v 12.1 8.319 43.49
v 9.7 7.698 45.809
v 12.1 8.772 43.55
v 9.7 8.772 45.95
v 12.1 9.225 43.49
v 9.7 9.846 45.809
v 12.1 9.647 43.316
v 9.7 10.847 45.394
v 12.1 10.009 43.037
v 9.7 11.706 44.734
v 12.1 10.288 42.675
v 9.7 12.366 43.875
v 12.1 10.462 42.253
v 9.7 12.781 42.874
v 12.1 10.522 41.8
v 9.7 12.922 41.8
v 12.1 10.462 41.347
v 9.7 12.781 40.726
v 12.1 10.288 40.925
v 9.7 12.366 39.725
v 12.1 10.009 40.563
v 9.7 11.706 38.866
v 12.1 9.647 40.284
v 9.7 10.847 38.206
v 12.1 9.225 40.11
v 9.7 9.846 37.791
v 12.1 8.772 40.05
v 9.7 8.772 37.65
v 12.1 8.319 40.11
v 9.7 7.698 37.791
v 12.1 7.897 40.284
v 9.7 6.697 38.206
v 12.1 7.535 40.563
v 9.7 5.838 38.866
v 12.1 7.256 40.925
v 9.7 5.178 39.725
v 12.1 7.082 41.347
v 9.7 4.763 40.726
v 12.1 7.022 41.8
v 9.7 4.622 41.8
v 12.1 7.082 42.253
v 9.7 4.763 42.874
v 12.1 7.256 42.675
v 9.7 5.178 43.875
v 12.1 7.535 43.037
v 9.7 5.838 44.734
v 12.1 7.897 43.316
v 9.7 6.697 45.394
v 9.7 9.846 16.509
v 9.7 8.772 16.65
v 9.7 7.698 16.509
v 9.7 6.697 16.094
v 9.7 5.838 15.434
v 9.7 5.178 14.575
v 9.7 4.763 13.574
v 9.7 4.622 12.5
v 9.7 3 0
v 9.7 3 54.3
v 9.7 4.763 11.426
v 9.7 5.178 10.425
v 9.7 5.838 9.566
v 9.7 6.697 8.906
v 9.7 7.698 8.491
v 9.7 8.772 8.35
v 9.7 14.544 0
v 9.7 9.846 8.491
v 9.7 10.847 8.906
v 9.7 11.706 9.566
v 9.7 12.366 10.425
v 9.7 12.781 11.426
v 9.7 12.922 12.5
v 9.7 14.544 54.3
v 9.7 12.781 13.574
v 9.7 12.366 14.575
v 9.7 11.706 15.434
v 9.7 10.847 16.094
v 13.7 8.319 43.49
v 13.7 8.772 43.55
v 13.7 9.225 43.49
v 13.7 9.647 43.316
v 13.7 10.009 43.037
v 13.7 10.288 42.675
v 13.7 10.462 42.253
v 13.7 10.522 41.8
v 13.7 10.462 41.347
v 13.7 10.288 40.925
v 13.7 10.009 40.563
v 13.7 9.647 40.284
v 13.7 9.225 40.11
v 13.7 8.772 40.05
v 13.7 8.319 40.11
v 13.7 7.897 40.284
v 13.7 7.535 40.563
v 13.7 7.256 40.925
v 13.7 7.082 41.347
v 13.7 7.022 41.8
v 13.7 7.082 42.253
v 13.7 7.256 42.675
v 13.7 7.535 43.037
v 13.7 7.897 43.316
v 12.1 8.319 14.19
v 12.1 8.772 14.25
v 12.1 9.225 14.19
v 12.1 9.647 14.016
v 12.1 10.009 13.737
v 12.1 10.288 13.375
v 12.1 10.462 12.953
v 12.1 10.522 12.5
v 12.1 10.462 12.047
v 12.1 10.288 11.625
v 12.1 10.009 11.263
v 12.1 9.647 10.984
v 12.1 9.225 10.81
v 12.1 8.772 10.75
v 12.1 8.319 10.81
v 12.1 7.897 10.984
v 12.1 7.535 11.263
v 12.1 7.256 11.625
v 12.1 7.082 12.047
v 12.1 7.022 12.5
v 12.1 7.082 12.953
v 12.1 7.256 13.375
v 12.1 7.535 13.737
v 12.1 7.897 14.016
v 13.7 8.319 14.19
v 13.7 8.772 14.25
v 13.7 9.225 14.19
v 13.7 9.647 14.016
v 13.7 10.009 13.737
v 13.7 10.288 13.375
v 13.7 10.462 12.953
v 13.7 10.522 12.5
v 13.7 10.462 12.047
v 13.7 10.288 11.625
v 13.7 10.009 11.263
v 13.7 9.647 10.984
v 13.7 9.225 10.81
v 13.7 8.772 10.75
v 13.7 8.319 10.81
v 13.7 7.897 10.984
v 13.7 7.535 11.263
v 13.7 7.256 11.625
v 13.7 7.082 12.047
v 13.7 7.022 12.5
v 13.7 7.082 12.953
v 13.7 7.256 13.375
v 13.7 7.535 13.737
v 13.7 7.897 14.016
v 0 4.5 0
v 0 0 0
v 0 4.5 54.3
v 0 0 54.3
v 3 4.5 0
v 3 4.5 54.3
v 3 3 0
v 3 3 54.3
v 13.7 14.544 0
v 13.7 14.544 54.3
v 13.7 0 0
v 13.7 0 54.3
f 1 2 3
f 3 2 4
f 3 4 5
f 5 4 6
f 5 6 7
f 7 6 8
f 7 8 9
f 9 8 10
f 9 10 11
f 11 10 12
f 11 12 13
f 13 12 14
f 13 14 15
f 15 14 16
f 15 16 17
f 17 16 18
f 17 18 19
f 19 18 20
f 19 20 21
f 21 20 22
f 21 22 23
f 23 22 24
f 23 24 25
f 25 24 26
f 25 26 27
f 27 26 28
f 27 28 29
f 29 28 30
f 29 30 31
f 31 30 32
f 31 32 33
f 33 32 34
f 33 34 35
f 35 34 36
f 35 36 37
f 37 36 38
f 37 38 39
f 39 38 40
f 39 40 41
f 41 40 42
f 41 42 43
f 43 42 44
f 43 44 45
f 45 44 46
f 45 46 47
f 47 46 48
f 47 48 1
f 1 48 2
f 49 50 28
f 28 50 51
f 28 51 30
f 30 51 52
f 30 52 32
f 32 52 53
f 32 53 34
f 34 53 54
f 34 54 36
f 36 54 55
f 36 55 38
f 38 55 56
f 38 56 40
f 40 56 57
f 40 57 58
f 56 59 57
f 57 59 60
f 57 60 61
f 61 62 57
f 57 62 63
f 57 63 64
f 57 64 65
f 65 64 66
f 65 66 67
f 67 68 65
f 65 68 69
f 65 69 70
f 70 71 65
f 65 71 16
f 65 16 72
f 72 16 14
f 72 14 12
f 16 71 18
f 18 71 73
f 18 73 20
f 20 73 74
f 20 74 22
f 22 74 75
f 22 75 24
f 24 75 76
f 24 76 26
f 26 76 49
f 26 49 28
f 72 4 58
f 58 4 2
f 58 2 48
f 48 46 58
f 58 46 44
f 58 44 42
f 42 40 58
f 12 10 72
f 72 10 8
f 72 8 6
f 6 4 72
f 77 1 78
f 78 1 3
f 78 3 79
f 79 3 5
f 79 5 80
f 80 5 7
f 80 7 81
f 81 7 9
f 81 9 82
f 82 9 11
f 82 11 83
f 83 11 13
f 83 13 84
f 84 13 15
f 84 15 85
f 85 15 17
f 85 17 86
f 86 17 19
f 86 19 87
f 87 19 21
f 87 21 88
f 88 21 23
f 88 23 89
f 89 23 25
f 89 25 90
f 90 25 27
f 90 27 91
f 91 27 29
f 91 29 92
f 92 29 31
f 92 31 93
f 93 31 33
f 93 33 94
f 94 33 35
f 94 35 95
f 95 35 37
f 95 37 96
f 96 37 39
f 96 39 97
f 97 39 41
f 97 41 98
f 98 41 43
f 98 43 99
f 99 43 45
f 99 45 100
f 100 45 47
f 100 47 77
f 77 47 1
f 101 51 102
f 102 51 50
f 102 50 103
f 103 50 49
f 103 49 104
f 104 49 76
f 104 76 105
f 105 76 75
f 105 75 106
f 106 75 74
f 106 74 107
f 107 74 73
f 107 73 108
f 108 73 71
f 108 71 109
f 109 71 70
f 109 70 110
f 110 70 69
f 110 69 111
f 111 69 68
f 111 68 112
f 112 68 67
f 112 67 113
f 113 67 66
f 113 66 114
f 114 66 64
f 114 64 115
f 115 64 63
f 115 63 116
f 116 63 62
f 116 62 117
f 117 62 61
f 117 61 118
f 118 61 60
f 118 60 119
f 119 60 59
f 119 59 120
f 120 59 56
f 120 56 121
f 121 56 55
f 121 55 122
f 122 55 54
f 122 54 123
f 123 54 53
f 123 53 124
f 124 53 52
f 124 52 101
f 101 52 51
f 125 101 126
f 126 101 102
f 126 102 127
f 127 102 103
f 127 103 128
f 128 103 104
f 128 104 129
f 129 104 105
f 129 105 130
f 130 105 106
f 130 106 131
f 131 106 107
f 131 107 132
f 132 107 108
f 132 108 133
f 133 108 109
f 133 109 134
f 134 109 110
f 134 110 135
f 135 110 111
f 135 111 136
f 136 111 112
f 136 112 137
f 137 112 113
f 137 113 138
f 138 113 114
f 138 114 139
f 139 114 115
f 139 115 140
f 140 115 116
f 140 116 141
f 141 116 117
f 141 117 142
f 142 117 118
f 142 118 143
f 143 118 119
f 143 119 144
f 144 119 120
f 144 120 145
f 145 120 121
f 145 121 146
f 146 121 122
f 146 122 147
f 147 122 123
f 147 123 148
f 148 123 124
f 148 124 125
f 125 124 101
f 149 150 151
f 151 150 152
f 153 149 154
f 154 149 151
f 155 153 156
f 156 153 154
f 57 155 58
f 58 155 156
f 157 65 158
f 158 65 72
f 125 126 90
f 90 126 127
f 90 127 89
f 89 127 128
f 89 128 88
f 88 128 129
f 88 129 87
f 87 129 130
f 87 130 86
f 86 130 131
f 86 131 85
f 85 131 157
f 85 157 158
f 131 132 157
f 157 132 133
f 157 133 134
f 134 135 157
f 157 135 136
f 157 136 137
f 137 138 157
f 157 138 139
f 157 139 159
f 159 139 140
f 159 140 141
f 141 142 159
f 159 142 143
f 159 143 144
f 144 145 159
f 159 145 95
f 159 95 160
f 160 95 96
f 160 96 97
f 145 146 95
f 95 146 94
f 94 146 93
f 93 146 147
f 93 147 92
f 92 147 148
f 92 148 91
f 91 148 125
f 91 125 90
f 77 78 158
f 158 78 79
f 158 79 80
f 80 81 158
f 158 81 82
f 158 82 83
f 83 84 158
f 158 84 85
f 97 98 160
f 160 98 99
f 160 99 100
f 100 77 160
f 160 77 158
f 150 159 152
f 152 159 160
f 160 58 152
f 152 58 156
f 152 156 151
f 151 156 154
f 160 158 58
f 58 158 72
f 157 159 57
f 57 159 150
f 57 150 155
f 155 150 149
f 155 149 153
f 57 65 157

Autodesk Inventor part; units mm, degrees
ref_plane "YZ Plane" through (0, 0, 0) normal (1, 0, 0) x (0, 1, 0)
ref_plane "XZ Plane" through (0, 0, 0) normal (0, 1, 0) x (-1, 0, 0)
ref_plane "XY Plane" through (0, 0, 0) normal (0, 0, 1) x (1, 0, 0)
sketch "Sketch1" plane through (0, 0, 0) normal (0, 0, 1) x (1, 0, 0)
  line L0 (0, 0) -> (0, 4.5)
  line L1 (0, 0) -> (0, 4.5)
  line L2 (0, 4.5) -> (3, 4.5)
  line L3 (0, 4.5) -> (3, 4.5)
  line L4 (3, 4.5) -> (3, 3)
  line L5 (3, 4.5) -> (3, 3)
  line L6 (3, 3) -> (9.7, 3)
  line L7 (3, 3) -> (9.7, 3)
  line L8 (9.7, 3) -> (9.7, 14.544)
  line L9 (9.7, 3) -> (9.7, 14.544)
  line L10 (13.7, 14.544) -> (9.7, 14.544)
  line L11 (9.7, 14.544) -> (13.7, 14.544)
  line L12 (13.7, 14.544) -> (13.7, 0)
  line L13 (13.7, 0) -> (0, 0)
  line L14 (13.7, 0) -> (0, 0)
  point P0 (13.7, 167.0499)
extrude "Extrusion1" add sketch "Sketch1" along normal blind 54.3
sketch "Sketch2" plane through (9.7, 3, 0) normal (-1, 0, 0) x (0, 0, 1)
  circle A0 centre (12.5, 5.772) radius 1.75
  circle A1 centre (41.8, 5.772) radius 1.75
  line L0 (0, 11.544) -> (0, 0) projected
  line L1 (54.3, 11.544) -> (54.3, 0) projected
  point P0 (0, -3)
  dimension "d2" = 3.5
  dimension "d3" = 3.5
  dimension "d4" = 12.5
  dimension "d5" = 12.5
extrude "Extrusion2" cut sketch "Sketch2" against normal blind 54.3
chamfer "Chamfer1" distance 2.4 angle 45 2 edges at (9.7, 8.772, 10.75) (9.7, 8.772, 40.05)
equation "\"d5\" = d4"
properties part number "bottomSpacer"
